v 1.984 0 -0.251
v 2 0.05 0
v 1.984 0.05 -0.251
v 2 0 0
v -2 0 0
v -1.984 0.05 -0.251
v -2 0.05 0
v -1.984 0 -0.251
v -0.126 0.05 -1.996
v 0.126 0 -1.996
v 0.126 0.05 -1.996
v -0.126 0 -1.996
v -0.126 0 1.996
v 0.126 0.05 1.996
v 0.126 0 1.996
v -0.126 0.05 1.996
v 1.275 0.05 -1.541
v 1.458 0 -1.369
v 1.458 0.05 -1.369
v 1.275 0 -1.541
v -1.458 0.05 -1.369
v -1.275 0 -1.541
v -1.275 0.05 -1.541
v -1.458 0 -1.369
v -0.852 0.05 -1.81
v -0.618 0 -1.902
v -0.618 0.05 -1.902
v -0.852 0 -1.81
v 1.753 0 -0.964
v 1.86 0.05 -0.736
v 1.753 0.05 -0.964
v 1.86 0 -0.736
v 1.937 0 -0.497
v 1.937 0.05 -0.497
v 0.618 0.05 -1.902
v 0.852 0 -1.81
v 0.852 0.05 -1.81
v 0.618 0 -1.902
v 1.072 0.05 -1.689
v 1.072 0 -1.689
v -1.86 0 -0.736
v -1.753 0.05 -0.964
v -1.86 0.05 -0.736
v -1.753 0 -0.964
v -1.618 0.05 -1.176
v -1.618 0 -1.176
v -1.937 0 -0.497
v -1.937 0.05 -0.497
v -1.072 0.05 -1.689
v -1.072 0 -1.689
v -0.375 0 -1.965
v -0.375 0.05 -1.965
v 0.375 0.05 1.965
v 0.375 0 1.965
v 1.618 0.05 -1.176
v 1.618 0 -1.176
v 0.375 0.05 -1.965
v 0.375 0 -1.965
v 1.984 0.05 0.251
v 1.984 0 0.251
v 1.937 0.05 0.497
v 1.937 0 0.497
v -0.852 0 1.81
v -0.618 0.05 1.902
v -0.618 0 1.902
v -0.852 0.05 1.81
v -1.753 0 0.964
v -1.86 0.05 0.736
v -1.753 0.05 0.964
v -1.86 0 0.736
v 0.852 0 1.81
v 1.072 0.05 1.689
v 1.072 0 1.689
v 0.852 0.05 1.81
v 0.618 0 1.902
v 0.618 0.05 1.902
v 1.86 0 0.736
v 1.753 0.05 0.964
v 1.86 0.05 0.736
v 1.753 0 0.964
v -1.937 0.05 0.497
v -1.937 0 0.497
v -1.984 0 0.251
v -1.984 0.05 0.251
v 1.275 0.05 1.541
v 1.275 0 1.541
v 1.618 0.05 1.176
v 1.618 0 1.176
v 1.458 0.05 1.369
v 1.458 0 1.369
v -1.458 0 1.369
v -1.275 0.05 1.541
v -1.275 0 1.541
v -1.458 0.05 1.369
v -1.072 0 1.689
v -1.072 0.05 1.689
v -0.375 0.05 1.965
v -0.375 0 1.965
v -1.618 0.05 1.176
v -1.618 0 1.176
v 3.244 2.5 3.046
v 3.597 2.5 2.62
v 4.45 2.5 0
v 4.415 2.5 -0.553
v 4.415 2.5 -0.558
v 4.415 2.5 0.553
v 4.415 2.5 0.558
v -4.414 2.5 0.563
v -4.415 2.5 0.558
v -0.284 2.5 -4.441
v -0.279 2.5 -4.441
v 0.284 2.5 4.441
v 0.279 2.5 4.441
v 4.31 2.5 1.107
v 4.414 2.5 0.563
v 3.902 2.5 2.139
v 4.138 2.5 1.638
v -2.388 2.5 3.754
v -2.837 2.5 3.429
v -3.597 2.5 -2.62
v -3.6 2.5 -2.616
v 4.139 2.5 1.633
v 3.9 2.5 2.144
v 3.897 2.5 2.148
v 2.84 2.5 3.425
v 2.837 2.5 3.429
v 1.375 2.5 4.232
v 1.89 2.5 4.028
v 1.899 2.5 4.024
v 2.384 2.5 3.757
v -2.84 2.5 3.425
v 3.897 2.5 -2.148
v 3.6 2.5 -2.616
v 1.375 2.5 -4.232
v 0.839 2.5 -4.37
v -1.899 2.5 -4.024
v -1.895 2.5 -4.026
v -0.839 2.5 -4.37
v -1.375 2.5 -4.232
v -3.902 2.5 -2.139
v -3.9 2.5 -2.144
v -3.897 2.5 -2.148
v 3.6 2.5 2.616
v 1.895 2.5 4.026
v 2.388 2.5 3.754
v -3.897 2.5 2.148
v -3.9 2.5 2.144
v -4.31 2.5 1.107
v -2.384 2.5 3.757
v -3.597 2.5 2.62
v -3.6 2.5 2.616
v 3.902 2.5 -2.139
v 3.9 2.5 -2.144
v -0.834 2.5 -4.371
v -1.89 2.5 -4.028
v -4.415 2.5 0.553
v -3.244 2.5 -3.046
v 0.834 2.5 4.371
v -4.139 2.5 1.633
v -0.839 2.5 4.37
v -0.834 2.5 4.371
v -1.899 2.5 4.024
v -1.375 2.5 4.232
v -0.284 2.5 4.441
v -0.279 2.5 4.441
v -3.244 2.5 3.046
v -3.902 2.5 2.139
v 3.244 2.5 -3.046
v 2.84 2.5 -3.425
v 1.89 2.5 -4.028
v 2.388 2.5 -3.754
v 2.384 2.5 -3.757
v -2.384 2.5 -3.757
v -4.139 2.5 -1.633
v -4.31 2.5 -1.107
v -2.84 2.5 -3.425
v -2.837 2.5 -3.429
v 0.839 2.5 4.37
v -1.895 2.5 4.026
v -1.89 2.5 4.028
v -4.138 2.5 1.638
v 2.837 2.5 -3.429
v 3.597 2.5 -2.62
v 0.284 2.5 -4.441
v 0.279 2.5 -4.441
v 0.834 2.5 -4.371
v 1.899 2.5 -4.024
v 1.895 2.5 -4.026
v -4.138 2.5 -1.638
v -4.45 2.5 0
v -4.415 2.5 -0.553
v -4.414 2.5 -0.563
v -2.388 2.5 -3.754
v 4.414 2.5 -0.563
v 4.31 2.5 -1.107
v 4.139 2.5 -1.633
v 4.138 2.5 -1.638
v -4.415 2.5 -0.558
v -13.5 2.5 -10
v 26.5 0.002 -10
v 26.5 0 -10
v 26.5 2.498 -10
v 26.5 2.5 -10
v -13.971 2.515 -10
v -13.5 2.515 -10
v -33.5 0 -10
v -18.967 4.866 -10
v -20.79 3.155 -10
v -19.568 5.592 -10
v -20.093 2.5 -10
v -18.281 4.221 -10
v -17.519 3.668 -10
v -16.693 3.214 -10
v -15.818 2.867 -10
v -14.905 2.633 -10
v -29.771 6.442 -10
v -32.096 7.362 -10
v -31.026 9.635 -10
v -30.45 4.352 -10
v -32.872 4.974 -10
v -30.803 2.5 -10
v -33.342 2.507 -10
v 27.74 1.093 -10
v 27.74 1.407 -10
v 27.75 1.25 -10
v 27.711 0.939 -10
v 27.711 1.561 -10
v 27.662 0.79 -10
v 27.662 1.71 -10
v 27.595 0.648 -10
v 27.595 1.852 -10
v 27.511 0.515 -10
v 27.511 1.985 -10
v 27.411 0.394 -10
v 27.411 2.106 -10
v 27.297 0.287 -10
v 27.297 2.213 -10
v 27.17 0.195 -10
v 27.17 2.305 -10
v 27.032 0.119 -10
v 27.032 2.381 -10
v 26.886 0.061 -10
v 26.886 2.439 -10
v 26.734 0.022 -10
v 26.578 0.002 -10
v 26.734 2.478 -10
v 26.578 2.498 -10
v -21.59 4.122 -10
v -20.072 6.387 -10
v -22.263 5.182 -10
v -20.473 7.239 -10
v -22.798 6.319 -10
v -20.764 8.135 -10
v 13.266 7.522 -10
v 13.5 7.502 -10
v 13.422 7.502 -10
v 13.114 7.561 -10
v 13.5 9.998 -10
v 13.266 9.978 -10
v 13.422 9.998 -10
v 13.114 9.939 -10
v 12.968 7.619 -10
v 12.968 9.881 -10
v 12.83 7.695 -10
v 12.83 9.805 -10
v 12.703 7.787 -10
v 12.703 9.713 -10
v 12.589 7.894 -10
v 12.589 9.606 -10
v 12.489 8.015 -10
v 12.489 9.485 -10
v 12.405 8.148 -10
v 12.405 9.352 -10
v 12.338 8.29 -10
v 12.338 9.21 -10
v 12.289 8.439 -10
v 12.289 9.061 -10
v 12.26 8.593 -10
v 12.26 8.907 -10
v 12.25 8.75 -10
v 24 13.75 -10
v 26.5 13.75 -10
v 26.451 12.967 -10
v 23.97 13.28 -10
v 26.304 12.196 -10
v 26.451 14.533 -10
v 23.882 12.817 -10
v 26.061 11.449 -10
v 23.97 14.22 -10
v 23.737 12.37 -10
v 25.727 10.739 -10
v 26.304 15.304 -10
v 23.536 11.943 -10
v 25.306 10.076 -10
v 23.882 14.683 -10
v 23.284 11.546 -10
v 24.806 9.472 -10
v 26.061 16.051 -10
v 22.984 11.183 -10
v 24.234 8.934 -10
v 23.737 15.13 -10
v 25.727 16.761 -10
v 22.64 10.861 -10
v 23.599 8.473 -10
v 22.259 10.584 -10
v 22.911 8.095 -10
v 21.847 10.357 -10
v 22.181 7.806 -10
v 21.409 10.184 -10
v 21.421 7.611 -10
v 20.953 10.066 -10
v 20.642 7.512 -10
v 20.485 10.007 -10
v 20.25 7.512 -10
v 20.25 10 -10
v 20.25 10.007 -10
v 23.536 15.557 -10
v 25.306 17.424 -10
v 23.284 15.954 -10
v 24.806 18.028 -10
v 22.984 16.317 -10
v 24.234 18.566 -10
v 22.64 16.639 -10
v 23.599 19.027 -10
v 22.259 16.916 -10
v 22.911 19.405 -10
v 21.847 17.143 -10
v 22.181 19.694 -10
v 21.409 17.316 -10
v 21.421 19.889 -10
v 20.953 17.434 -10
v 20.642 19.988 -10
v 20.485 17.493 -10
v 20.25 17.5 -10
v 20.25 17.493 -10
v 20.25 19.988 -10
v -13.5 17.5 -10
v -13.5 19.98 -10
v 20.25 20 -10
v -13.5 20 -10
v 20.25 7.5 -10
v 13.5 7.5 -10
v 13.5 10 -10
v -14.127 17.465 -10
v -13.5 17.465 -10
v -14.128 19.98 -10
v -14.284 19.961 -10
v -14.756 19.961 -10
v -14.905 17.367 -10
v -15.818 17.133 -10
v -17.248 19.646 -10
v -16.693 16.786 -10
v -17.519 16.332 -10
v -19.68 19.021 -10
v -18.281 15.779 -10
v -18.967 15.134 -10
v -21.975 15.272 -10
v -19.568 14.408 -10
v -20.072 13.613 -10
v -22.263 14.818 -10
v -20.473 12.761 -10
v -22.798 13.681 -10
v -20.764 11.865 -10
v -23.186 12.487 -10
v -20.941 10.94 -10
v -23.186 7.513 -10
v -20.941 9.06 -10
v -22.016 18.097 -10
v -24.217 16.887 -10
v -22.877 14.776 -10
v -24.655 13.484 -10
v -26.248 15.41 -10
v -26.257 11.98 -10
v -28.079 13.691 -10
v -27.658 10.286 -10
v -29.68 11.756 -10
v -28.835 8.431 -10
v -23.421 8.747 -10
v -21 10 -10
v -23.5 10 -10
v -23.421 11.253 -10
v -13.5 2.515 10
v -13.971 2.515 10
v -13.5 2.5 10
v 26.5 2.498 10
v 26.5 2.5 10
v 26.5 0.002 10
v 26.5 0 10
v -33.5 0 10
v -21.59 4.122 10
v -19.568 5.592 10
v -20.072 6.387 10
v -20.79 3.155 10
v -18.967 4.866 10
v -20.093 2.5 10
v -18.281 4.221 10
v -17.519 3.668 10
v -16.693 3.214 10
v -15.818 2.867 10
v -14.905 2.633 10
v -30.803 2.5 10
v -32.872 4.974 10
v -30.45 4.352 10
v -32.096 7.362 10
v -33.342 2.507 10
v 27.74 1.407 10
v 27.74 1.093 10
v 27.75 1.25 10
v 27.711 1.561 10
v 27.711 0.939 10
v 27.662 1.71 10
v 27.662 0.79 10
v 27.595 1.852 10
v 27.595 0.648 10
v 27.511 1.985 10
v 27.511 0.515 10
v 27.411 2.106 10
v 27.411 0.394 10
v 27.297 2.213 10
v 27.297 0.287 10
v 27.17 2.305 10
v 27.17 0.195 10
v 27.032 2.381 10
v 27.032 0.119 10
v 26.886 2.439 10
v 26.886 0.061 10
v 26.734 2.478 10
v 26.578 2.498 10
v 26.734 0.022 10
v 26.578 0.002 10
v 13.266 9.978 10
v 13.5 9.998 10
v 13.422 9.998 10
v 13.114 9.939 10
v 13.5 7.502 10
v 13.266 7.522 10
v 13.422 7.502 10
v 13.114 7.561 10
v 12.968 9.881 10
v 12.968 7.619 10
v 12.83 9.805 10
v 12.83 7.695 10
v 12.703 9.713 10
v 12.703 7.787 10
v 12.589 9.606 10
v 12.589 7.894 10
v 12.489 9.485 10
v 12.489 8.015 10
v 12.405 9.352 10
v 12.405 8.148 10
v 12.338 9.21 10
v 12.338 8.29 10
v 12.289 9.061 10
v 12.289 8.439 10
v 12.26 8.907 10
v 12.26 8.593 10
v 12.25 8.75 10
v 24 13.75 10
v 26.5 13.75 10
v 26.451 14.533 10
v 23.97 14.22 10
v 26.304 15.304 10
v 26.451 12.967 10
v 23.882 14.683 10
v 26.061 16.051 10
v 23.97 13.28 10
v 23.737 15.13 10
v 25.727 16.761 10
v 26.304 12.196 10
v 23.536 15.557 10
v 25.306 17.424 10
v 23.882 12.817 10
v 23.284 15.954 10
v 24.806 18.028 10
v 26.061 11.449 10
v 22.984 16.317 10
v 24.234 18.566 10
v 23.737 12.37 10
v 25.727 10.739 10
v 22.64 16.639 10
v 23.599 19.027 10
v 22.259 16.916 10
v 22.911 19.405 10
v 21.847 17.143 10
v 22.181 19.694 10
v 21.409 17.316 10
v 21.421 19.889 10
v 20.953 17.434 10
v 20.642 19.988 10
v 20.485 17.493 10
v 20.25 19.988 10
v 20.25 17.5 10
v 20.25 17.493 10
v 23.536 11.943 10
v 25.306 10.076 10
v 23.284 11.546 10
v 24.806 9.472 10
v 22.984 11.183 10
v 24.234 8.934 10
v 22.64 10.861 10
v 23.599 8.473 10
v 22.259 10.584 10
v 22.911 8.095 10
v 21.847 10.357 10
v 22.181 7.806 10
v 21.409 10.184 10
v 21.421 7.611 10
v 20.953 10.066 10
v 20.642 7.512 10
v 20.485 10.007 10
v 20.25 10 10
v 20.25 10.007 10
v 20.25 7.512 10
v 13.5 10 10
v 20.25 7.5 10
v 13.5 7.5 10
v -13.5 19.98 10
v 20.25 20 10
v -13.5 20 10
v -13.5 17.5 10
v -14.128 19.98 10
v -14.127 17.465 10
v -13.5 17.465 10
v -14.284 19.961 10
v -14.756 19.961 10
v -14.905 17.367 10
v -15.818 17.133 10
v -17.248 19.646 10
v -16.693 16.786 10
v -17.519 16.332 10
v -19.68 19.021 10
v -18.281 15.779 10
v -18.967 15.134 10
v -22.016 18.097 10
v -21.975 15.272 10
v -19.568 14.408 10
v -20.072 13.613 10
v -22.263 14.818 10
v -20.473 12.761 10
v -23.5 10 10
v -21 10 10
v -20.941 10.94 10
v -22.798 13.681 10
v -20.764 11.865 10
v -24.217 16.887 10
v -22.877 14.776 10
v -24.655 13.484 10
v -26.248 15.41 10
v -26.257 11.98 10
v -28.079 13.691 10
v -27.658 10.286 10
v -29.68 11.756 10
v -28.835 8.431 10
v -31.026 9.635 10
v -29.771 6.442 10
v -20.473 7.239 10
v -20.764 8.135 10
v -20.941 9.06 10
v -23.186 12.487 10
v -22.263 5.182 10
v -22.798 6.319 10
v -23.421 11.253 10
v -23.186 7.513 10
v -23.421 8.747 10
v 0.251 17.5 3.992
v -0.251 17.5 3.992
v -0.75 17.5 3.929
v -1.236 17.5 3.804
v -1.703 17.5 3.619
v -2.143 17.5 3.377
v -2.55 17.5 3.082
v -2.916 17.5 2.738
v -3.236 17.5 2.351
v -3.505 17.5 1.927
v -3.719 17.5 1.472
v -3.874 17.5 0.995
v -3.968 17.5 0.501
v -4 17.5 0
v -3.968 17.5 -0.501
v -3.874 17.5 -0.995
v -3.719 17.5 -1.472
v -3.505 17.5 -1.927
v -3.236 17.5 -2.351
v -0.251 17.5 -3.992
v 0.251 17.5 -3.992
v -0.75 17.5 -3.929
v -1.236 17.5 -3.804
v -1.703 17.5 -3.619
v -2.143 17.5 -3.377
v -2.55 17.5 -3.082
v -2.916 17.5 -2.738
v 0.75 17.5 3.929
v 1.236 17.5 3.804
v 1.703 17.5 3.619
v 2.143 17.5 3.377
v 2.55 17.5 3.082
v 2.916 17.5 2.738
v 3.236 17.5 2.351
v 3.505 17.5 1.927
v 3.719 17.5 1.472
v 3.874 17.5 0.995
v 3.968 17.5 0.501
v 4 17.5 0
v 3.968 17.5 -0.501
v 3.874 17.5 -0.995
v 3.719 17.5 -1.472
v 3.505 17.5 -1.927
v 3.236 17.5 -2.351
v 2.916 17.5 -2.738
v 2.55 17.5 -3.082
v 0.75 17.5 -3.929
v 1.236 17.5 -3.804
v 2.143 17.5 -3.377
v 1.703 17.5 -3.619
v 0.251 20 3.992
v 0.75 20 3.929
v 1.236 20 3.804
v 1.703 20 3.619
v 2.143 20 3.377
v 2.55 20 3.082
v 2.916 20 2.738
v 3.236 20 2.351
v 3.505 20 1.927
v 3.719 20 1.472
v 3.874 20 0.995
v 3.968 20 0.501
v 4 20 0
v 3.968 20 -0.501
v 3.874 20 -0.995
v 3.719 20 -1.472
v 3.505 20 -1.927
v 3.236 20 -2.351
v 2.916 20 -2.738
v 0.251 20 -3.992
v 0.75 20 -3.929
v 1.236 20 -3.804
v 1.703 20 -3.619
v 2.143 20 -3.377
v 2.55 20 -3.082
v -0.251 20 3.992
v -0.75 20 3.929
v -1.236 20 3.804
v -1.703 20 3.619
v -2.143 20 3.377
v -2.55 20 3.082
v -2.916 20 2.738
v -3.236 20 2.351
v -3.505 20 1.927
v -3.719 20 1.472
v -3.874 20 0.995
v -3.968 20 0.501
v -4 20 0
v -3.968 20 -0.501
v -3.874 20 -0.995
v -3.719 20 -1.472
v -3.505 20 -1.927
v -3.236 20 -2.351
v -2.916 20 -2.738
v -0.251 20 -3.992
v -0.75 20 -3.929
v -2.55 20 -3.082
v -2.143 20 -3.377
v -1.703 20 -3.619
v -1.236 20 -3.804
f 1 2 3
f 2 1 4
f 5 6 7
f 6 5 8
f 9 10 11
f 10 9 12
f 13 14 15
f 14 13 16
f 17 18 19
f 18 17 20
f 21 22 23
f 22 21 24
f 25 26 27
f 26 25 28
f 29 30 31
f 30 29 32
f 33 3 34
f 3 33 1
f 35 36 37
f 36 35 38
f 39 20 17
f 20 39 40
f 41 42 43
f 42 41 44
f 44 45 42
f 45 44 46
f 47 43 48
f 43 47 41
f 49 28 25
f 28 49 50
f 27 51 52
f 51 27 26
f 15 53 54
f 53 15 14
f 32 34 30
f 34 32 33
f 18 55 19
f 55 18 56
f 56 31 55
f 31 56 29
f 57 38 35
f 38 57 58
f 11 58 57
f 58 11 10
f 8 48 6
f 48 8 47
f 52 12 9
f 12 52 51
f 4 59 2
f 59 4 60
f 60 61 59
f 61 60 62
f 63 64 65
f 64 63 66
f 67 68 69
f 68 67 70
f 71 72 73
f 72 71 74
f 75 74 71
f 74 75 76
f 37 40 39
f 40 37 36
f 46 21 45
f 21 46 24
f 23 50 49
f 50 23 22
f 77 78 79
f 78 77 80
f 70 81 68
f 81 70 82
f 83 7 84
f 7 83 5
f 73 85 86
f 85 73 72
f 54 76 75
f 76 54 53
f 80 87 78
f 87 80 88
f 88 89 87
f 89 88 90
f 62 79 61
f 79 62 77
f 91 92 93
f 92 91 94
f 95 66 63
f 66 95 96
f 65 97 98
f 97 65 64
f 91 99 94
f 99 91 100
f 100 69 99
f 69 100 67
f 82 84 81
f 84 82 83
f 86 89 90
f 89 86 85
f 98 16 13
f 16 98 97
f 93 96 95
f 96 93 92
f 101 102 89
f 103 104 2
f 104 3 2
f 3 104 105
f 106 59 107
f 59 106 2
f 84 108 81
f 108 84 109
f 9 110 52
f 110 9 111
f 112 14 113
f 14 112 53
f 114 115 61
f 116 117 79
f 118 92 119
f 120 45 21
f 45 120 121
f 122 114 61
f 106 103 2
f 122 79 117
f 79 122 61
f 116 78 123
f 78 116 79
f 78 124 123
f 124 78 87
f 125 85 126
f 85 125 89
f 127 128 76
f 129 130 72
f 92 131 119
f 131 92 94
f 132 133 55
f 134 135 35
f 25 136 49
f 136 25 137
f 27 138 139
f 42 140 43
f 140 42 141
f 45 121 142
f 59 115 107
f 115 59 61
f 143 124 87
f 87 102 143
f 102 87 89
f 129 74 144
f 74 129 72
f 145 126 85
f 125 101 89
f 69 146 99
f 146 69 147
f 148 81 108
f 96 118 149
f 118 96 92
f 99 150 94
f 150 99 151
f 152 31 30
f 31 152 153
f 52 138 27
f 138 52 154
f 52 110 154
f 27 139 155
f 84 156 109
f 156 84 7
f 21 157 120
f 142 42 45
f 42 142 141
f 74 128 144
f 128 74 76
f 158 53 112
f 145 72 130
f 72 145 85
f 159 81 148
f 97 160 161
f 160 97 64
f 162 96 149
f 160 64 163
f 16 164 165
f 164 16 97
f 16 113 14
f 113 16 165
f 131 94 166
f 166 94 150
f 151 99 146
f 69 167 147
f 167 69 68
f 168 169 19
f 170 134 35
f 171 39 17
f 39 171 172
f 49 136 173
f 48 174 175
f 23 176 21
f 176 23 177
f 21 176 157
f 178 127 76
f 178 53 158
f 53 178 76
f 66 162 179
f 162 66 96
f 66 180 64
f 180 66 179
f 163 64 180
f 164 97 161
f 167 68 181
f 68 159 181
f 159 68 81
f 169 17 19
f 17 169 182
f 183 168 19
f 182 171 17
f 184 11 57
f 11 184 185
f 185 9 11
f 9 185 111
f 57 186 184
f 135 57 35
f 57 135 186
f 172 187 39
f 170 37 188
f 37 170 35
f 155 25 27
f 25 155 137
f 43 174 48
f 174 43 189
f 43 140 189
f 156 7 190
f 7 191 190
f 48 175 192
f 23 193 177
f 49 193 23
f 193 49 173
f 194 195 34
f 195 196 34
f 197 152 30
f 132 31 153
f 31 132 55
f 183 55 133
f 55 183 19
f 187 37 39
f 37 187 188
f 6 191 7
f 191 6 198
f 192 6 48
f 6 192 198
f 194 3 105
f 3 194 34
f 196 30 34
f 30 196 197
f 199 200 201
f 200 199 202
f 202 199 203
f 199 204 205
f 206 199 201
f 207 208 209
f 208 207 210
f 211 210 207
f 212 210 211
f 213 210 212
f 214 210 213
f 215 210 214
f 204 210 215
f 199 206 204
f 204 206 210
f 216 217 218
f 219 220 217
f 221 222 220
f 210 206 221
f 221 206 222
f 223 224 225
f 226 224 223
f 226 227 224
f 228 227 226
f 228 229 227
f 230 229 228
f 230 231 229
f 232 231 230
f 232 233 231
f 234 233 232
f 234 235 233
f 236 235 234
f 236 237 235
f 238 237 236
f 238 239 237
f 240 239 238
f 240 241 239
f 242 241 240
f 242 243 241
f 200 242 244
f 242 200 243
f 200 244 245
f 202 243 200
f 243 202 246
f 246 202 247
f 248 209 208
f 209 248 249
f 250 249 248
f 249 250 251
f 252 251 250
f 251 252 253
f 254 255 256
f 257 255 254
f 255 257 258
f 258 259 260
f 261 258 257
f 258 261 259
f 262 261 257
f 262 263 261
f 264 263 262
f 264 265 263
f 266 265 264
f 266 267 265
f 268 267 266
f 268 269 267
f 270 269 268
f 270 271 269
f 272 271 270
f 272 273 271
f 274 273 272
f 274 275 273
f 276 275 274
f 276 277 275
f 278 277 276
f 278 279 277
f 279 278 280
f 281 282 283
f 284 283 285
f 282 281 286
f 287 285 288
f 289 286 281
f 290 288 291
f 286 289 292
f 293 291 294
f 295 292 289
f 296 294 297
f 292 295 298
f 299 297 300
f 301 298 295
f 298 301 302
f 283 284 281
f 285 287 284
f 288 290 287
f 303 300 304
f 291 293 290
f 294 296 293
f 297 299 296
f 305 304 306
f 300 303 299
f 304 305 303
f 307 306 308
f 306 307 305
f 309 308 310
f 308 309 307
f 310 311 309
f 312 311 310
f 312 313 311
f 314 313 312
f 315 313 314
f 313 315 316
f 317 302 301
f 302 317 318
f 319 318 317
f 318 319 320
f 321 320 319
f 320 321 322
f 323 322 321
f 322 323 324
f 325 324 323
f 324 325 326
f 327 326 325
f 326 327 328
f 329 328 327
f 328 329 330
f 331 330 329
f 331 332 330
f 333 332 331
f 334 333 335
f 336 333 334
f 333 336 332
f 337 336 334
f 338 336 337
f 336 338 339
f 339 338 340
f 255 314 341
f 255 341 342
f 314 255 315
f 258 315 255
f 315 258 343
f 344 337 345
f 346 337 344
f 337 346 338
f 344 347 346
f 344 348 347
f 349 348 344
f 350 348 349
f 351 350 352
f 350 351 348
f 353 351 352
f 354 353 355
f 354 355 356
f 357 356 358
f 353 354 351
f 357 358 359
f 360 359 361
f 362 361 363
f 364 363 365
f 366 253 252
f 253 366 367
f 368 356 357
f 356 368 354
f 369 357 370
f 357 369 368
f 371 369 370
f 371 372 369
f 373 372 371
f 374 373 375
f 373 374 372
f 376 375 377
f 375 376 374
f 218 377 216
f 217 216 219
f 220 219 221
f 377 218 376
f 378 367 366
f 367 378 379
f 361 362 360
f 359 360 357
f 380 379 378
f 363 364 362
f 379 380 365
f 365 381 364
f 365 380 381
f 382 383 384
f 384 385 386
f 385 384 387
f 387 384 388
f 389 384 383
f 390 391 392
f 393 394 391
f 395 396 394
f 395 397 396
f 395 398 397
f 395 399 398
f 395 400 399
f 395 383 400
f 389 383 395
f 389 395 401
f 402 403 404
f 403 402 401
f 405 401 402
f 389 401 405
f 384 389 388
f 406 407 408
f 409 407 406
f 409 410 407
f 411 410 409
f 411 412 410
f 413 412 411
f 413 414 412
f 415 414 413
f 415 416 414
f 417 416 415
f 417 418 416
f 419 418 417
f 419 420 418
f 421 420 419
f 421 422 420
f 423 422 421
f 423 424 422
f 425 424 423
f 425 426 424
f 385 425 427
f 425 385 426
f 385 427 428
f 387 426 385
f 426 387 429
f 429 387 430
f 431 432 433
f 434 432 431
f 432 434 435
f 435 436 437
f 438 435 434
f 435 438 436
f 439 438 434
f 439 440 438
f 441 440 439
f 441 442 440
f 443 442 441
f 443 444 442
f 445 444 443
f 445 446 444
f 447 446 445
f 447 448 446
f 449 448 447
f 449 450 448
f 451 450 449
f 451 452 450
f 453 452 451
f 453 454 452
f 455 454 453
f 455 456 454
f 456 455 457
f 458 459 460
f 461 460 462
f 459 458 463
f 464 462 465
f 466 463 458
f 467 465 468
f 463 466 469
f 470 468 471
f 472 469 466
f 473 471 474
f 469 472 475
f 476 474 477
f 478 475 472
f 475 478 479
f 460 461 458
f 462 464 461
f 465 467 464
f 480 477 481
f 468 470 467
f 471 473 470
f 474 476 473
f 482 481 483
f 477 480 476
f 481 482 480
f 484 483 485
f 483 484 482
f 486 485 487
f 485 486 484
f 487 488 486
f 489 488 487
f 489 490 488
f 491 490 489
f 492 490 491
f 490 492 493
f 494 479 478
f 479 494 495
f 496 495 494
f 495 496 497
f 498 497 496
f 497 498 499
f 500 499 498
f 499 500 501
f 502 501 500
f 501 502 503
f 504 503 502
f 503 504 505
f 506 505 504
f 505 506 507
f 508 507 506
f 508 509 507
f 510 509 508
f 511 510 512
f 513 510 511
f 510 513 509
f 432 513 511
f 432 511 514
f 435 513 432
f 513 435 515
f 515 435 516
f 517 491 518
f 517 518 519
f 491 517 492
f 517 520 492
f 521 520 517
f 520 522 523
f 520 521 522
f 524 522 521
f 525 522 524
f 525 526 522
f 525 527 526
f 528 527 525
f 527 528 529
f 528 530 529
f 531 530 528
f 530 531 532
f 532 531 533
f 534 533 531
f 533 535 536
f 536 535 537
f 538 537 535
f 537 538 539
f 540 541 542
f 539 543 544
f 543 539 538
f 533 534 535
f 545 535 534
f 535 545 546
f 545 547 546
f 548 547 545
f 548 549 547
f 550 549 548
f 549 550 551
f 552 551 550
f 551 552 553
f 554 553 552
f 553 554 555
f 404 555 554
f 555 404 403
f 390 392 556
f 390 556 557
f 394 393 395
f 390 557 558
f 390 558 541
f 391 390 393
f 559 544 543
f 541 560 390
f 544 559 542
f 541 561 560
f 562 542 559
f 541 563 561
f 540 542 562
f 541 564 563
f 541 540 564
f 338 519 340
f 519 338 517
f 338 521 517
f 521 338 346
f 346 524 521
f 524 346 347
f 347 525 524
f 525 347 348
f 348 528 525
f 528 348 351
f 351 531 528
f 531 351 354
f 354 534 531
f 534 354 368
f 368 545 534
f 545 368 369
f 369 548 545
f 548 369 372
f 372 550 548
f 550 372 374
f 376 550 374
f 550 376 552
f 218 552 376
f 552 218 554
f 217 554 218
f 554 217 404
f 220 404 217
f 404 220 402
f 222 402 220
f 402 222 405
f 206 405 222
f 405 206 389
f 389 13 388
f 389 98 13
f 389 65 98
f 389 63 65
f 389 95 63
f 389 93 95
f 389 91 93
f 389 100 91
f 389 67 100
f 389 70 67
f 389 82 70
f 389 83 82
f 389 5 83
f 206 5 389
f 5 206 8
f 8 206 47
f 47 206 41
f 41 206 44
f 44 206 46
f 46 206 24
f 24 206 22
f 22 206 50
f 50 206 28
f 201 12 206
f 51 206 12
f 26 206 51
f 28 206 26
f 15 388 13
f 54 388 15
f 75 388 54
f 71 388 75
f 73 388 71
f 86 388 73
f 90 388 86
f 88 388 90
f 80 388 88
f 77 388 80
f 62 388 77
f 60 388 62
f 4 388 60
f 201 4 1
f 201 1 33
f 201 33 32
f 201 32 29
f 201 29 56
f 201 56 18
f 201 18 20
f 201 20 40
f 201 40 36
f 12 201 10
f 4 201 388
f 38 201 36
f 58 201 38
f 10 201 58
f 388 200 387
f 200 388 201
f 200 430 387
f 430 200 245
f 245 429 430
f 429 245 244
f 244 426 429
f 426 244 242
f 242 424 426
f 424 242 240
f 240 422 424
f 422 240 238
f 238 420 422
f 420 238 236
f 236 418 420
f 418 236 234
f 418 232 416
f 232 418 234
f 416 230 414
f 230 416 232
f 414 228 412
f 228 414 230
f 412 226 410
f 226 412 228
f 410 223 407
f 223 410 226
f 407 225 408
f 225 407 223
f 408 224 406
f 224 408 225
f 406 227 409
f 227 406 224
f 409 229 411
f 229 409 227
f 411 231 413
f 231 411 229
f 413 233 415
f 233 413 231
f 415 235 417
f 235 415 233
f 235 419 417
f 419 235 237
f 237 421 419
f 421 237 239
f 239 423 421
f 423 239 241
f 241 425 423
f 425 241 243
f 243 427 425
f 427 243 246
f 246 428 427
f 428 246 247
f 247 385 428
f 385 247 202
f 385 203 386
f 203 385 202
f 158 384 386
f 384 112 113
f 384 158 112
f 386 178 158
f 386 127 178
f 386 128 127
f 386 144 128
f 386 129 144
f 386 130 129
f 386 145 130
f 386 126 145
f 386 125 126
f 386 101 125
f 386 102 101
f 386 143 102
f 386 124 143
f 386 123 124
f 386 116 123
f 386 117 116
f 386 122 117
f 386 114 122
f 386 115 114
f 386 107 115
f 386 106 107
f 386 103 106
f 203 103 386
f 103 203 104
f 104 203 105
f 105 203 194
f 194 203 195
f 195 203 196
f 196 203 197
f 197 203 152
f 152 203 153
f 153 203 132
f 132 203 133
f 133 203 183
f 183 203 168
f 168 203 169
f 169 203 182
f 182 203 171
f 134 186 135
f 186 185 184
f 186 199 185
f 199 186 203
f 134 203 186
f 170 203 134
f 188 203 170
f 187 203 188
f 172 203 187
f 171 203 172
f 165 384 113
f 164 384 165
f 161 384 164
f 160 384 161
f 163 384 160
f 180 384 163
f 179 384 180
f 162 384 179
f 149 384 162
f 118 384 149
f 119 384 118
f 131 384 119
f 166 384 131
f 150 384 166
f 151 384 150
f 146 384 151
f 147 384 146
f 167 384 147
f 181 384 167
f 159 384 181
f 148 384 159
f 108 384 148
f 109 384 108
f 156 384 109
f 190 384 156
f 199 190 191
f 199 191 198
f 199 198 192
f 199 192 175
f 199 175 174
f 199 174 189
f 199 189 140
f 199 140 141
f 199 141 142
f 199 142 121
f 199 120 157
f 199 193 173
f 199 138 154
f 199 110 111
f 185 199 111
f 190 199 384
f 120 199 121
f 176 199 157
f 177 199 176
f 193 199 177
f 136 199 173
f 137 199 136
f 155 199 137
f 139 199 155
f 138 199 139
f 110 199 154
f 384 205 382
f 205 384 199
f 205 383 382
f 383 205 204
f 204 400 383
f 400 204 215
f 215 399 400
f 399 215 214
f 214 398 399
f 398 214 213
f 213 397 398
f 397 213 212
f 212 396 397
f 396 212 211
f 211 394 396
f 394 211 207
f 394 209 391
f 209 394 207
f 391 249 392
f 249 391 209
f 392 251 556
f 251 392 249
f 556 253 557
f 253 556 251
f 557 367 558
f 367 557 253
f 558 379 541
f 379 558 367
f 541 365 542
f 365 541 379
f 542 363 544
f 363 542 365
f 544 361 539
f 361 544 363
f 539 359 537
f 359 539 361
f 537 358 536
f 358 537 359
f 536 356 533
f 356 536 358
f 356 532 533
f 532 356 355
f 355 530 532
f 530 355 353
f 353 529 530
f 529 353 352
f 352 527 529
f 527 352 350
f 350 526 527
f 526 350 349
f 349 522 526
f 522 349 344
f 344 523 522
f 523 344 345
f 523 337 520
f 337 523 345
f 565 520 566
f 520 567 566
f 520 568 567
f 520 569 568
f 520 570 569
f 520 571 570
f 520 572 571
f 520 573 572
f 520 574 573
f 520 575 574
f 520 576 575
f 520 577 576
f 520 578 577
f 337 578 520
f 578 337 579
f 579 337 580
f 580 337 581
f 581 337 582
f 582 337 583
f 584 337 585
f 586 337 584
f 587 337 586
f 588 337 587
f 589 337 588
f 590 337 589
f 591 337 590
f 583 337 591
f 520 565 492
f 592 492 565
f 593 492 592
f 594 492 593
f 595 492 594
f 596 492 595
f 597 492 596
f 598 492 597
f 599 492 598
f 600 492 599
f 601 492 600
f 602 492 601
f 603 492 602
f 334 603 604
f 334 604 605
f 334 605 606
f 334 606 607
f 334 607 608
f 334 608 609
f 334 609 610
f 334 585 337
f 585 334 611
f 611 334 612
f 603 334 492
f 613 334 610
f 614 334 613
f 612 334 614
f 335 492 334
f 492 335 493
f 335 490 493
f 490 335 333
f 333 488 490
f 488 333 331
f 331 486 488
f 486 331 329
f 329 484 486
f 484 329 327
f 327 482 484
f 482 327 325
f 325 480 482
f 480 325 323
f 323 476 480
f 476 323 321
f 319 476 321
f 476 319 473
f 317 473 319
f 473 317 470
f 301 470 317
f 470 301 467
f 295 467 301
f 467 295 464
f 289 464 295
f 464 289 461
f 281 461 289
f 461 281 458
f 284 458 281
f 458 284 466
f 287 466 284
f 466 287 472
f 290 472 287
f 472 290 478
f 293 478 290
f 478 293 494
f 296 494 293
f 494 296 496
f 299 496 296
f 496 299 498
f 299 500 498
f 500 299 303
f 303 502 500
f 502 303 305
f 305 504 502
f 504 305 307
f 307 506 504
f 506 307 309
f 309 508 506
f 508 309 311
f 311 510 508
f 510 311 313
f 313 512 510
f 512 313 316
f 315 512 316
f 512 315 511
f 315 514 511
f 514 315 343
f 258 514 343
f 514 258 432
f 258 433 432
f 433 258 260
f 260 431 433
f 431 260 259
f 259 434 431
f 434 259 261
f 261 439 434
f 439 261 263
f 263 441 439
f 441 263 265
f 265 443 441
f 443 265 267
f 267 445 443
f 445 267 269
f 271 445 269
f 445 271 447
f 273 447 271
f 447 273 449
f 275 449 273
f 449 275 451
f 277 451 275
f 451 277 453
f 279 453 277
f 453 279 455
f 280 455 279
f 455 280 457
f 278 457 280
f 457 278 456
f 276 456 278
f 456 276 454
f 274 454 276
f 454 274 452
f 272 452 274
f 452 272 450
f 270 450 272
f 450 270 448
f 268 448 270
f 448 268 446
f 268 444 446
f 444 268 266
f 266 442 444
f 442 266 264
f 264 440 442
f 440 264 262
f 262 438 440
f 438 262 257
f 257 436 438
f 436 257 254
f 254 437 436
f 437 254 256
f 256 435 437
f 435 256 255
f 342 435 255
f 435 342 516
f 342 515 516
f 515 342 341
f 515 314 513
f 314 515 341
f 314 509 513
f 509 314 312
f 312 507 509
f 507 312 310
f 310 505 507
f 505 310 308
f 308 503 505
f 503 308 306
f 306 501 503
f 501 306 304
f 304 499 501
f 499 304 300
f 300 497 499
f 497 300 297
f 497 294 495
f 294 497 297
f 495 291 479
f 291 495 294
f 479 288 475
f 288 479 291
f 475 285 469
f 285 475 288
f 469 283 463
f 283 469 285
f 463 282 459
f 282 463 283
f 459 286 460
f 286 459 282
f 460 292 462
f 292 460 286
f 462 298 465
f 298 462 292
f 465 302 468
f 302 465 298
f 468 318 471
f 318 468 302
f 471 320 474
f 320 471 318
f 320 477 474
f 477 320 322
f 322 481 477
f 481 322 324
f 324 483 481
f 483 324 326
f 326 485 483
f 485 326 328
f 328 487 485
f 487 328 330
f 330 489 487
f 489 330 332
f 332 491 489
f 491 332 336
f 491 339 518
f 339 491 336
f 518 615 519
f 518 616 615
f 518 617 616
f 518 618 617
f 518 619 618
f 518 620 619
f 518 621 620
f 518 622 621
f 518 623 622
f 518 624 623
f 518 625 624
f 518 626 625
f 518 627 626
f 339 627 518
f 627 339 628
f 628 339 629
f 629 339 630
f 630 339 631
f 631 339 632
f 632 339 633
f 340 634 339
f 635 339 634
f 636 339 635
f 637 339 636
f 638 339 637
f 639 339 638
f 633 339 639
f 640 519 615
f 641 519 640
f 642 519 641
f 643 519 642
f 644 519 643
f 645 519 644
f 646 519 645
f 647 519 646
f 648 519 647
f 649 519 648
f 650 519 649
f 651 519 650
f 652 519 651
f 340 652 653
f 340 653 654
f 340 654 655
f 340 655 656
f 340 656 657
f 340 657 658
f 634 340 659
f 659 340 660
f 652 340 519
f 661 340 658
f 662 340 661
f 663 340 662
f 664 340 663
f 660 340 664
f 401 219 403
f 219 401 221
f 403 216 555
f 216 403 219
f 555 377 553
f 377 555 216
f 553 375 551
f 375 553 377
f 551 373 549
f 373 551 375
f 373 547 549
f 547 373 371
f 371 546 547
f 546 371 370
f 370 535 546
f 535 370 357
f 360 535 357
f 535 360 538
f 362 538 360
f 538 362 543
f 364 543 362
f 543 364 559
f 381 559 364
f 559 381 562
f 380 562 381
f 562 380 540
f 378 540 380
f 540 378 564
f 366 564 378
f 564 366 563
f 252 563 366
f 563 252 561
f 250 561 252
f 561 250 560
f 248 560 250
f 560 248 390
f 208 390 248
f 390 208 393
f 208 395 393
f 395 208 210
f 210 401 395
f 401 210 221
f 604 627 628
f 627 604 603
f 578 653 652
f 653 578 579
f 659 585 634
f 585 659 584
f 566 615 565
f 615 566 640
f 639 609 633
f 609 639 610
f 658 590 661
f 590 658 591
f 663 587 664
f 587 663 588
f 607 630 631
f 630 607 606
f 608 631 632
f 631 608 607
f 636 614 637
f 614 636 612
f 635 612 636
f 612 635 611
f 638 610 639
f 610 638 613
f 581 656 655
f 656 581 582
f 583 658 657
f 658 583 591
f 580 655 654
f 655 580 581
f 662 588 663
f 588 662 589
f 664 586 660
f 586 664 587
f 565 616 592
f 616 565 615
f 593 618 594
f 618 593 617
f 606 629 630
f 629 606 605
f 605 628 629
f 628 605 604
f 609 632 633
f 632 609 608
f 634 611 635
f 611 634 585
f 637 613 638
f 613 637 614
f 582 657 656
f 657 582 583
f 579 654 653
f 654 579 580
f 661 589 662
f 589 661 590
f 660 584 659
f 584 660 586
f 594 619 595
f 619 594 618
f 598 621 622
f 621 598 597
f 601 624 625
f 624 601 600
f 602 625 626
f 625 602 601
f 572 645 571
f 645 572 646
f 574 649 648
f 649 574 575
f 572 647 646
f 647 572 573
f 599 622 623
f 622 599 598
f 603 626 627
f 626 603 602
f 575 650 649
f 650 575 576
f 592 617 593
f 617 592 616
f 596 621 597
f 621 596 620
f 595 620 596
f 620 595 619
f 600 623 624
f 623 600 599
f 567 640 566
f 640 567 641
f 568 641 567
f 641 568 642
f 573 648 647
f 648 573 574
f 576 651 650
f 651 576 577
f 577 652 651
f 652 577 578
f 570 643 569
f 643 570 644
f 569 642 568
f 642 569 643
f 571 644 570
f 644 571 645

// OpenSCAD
// file: chamfer.scad
module chamfered_hole(height, hole_diameter, chamfer_diameter) {
  $chamfer_height = (chamfer_diameter - hole_diameter) / 2;
  $cylinder_height = height - $chamfer_height;

  translate([ 0, 0, -height / 2 ]) union() {
    // Add 0.1 to make sure the union with the chamfer is perfect
    cylinder(h = $cylinder_height + 0.1, d = hole_diameter);

    translate([ 0, 0, $cylinder_height ]) cylinder(
        h = $chamfer_height, d1 = hole_diameter, d2 = chamfer_diameter);
  }
}
// main file
$fn = 50;

use <chamfer.scad>

module 2d_hook(width, inner_height, opening_height, thickness) {
  $outer_height = inner_height + 2 * thickness;
  $large_ext_diameter = $outer_height;
  $small_ext_diameter = $outer_height - thickness - opening_height;
  $bottom_square_width = width - $outer_height / 2;
  $top_square_width = $bottom_square_width - $small_ext_diameter / 2;
  $middle_square_width = $top_square_width / 5;

  translate([ -($top_square_width - $middle_square_width) / 2, 0, 0 ]) {
    union() {
      // Base
      union() {
        square([ $bottom_square_width, thickness ]);
        // fillet
        translate([ $bottom_square_width, thickness / 2, 0 ]) {
          circle(d = thickness);
        }
      }

      // Large half-circle
      translate([ 0, $outer_height / 2, 0 ]) {
        half_circle($outer_height, thickness);
      }

      // Top square
      translate([ 0, inner_height + thickness, 0 ]) {
        square([ $top_square_width, thickness ]);
      }

      // Small half circle
      translate([
        $top_square_width, $small_ext_diameter / 2 + opening_height + thickness,
        0
      ]) {
        rotate([ 0, 0, 180 ]) { half_circle($small_ext_diameter, thickness); }
      }

      // Small knob to prevent cables from sliding out
      translate([
        $top_square_width - $middle_square_width, thickness + opening_height, 0
      ]) {
        union() {
          square([ $middle_square_width, thickness ]);
          // fillet
          translate([ 0, thickness / 2, 0 ]) { circle(d = thickness); }
        }
      }

      // Add an arc to make it stronger
      arc(2 * $outer_height, thickness);
      translate([ -$outer_height + thickness / 2, 0, 0 ])
          square([ $outer_height, thickness ]);
    }
  }
}

module arc(outer_diameter, thickness) {
  intersection() {
    half_circle(2 * $outer_height, thickness);

    translate([ -$outer_height, 0, 0 ]) square($outer_height);
  }
}

module half_circle(outer_diameter, thickness) {
  $inner_diameter = outer_diameter - 2 * thickness;

  difference() {
    circle(d = outer_diameter);
    circle(d = $inner_diameter);

    translate([ 0, -outer_diameter / 2, 0 ]) {
      square([ outer_diameter / 2, outer_diameter ]);
    }
  }
}

module hook(width, depth, inner_height, opening_height, thickness) {
  difference() {
    linear_extrude(depth, center = true) {
      2d_hook(width, inner_height, opening_height, thickness);
    }

    // Screw hole
    translate([ 0, thickness / 2, 0 ]) {
      rotate([ -90, 0, 0 ]) { chamfered_hole(thickness + 0.1, 4, 9); }
    }

    // Top hole (for screwdriver)
    translate([ 0, inner_height + thickness - 0.1, 0 ]) {
      rotate([ -90, 0, 0 ]) { cylinder(d = 8, h = thickness + 0.2); }
    }
  }
}

// 2d_hook(width = 55, inner_height = 15, opening_height = 5, thickness = 3);

hook(width = 50, depth = 20, inner_height = 15, opening_height = 5,
     thickness = 2.5);
